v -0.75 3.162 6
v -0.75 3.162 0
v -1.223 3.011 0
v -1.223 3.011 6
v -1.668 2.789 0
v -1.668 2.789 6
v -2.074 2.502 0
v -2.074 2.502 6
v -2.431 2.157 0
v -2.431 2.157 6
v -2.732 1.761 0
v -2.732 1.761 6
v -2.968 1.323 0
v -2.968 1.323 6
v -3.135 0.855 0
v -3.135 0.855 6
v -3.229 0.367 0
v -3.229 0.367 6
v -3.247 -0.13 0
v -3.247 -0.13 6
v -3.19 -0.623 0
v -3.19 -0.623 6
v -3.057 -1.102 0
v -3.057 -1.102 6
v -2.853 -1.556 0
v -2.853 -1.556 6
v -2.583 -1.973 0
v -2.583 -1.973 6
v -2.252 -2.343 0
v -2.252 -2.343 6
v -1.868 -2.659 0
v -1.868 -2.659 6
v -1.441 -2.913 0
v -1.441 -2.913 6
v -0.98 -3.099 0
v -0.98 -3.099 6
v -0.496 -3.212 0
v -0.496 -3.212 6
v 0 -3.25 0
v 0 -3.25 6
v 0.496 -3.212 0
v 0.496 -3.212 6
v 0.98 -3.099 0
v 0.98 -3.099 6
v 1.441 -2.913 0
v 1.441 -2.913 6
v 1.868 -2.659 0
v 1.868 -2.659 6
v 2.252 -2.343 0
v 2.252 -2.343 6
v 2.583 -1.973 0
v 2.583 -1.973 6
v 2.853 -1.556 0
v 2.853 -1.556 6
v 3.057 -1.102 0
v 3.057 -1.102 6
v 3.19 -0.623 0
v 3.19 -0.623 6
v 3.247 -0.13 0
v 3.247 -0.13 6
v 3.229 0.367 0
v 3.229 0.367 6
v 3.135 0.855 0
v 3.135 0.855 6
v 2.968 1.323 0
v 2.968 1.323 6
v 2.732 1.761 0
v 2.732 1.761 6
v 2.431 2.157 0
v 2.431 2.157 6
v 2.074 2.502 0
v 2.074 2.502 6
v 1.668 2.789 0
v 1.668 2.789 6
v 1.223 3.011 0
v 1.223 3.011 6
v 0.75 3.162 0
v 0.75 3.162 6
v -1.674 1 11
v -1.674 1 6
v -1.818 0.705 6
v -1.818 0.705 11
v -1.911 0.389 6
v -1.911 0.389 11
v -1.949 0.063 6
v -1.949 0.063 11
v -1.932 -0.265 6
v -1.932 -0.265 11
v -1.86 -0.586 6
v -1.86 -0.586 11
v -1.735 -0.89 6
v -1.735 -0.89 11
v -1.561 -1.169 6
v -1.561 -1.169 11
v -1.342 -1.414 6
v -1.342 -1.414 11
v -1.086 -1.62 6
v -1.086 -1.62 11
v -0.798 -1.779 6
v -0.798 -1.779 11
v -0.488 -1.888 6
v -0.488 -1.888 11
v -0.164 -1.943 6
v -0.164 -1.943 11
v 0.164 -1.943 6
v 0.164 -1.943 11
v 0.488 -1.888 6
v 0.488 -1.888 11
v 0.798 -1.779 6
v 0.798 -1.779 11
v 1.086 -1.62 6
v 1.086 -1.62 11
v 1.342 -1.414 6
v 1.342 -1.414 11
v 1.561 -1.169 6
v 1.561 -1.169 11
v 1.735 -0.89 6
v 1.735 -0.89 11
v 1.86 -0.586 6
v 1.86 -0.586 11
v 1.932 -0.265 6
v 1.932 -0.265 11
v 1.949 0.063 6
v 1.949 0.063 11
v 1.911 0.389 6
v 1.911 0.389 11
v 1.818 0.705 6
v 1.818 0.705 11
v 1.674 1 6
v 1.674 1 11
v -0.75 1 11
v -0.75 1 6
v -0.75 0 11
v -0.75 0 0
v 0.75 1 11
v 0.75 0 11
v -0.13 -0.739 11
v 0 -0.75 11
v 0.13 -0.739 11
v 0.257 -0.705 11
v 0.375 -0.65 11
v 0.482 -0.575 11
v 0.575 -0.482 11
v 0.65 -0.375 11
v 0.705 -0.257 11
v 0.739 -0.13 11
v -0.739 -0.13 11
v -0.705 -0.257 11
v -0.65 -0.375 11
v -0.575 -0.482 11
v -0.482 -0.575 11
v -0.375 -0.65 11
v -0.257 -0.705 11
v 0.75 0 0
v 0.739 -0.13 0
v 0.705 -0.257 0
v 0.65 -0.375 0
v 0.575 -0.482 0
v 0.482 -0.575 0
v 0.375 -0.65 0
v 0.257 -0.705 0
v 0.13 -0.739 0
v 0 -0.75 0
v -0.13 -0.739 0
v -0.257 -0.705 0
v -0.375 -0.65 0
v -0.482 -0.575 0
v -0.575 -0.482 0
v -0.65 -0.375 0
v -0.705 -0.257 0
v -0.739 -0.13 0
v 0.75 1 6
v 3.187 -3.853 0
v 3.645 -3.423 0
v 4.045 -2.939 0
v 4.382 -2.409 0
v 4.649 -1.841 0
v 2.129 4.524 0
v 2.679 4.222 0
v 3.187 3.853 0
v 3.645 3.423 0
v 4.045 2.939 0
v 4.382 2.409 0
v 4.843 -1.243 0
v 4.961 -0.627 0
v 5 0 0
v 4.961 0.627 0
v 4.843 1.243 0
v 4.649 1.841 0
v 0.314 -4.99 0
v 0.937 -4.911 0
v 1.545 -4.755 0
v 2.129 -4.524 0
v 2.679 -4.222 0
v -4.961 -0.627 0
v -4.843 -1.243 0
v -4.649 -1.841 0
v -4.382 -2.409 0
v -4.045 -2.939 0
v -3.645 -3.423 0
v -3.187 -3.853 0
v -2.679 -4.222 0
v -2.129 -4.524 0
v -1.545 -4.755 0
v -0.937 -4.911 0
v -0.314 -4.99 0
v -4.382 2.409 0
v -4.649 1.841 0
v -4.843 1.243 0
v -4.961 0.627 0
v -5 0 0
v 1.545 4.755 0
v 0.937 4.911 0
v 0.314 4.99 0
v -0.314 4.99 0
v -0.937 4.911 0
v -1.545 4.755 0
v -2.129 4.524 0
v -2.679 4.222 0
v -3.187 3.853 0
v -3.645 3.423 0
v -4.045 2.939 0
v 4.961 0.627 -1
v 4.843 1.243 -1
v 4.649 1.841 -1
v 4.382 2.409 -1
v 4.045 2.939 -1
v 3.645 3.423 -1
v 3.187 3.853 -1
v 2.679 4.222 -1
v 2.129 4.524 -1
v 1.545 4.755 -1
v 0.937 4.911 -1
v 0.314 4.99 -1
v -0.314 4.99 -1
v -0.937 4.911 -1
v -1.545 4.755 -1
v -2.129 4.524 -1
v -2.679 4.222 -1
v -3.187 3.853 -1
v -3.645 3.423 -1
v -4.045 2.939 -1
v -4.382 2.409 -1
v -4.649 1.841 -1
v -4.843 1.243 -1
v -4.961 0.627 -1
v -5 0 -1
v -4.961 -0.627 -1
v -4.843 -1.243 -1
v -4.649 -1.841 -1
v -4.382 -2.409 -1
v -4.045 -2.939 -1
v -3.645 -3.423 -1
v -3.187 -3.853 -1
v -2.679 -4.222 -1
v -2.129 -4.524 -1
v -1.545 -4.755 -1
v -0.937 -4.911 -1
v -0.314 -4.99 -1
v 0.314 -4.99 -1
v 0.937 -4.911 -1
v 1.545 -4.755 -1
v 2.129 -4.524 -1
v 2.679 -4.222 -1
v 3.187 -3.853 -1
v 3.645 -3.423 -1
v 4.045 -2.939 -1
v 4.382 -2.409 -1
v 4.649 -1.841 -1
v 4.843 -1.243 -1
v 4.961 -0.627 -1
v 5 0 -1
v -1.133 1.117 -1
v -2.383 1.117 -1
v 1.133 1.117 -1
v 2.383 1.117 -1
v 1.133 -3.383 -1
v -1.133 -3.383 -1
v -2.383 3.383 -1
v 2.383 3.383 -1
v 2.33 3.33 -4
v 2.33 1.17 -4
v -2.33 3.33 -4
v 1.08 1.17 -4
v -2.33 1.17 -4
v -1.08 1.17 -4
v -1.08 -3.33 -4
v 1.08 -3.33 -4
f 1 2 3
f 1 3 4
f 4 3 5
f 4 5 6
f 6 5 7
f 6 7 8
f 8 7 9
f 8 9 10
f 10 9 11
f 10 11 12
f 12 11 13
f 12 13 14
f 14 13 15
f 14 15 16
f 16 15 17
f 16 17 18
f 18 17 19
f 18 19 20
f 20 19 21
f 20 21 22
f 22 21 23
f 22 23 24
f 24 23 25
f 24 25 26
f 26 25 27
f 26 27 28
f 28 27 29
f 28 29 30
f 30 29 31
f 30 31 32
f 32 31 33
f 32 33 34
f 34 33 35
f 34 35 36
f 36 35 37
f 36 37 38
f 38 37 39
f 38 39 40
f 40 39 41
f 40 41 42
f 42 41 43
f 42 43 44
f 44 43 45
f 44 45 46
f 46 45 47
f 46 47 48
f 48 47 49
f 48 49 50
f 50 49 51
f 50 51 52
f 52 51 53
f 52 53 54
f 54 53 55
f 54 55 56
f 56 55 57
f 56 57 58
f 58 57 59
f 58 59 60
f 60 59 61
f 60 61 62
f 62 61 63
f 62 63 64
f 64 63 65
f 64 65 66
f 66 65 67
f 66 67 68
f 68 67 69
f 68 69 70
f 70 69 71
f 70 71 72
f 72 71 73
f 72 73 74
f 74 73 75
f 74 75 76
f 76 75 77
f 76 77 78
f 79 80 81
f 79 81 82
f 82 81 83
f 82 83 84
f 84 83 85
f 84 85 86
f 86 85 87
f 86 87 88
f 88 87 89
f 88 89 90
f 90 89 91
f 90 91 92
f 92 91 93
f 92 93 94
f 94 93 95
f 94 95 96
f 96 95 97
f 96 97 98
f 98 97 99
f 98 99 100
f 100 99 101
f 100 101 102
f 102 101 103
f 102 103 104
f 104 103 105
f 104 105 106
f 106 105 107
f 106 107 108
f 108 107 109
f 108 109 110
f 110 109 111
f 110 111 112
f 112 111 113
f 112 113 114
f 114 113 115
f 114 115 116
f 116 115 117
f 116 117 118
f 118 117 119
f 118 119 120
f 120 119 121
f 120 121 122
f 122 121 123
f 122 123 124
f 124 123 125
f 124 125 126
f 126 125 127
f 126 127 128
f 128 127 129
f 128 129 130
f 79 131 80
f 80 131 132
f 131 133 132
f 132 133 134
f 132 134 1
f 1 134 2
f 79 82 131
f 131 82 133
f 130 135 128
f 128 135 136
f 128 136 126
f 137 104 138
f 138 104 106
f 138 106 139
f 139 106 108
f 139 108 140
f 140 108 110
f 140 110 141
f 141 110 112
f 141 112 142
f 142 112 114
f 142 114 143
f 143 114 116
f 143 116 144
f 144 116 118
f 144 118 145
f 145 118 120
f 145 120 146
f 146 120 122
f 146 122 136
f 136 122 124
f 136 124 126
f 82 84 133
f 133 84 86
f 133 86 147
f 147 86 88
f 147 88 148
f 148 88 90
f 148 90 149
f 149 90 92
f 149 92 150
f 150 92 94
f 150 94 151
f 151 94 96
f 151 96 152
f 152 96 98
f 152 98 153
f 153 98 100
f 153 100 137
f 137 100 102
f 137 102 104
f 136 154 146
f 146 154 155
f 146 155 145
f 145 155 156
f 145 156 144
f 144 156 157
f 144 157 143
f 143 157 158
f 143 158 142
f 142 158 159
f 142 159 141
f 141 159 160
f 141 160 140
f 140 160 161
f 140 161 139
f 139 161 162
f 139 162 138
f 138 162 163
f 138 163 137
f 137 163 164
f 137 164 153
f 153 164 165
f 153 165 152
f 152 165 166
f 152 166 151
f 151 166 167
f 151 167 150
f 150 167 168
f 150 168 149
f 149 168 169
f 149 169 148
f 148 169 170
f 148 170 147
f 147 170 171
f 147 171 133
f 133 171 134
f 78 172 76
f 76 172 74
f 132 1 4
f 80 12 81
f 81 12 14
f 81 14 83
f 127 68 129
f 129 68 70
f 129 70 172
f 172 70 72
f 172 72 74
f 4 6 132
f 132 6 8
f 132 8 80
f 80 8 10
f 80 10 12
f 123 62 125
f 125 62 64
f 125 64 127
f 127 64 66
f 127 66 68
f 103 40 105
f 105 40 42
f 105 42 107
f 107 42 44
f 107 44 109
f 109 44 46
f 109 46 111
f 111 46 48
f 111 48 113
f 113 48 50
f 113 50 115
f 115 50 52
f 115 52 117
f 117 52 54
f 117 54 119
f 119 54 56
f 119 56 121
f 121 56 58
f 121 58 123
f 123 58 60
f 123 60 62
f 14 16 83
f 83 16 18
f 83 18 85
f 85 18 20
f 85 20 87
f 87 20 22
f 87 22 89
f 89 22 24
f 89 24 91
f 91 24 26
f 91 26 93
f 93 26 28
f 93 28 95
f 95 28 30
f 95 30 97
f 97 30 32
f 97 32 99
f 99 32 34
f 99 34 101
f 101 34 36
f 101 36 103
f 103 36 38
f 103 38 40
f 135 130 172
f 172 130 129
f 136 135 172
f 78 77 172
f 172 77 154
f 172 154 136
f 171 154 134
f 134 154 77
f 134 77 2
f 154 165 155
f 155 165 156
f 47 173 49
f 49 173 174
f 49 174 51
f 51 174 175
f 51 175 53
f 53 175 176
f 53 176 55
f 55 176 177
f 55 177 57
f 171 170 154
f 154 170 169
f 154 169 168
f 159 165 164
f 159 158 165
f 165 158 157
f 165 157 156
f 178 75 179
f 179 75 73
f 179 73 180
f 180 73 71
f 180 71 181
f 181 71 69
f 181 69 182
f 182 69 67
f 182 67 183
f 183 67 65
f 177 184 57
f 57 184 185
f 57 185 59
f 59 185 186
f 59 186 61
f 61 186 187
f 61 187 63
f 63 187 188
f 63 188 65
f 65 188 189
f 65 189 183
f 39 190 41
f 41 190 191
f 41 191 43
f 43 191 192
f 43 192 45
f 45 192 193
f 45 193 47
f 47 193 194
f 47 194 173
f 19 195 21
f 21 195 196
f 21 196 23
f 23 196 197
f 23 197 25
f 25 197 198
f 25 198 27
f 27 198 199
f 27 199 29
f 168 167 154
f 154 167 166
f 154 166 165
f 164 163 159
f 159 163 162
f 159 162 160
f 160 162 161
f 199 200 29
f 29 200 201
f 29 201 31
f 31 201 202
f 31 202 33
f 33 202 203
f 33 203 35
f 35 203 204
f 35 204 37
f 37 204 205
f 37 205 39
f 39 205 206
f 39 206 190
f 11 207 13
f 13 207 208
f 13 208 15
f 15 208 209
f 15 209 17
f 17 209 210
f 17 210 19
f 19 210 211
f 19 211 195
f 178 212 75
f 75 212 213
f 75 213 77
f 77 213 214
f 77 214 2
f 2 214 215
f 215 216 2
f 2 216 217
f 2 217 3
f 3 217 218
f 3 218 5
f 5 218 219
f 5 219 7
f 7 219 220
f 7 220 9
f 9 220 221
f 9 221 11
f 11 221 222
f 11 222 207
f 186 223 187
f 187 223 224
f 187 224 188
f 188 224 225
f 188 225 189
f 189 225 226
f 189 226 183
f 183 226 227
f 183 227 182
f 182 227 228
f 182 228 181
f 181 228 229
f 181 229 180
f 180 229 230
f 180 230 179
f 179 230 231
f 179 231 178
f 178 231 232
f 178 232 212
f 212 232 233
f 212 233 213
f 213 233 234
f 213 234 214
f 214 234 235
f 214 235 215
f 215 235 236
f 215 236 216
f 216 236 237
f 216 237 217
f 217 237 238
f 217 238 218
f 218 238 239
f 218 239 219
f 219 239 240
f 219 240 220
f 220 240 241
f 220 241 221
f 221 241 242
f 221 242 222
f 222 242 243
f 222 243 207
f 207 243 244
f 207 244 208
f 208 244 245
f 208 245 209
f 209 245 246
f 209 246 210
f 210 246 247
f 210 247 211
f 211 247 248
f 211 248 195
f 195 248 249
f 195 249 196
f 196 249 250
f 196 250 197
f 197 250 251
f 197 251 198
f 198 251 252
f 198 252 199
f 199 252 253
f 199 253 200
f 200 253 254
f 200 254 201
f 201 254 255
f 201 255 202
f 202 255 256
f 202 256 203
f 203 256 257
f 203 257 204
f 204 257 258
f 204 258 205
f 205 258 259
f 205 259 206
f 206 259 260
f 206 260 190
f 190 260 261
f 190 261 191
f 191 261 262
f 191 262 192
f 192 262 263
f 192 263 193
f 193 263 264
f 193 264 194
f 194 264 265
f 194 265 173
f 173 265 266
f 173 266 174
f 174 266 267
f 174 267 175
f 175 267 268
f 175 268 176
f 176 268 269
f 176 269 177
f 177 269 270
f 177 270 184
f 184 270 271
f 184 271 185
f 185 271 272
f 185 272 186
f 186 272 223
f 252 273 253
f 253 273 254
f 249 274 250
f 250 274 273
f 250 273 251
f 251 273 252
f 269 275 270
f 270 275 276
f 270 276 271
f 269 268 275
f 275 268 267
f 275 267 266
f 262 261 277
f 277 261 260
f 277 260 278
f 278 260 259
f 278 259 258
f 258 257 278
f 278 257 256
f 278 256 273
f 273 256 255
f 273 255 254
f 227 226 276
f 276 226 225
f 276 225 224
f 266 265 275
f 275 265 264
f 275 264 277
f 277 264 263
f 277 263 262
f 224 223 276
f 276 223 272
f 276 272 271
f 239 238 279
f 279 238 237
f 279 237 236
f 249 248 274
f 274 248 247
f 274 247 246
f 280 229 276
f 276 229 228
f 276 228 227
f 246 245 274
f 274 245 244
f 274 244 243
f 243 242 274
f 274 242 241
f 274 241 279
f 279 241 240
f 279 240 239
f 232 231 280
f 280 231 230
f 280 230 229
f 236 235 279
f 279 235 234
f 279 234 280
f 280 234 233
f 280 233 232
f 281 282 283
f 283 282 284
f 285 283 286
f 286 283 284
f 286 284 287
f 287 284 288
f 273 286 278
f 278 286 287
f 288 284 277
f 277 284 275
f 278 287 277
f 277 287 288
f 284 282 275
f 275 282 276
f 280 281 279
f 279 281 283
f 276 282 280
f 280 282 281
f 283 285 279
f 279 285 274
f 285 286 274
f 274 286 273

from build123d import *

# Parameters (mm, degrees)
STOCK_5_GEAR_5_OUTPUT_GEAR_32TEETH_0_5M_DEPTH = 6
STOCK_5_GEAR_START                            = 6
STOCK_5_GEAR_5_OUTPUT_GEAR_32TEETH_3_DEPTH    = 5
SKETCH1_W                                     = 2.3
SKETCH1_H                                     = 6.8
BOSS_EXTRUDE1_DEPTH                           = 4
BOSS_EXTRUDE1_DRAFT                           = 1
SKETCH1_W_2                                   = 4.8
SKETCH1_H_2                                   = 2.3
BOSS_EXTRUDE1_PROFILE_2_DEPTH                 = 4
BOSS_EXTRUDE1_PROFILE_2_DRAFT                 = 1
SKETCH2_R                                     = 5
BOSS_EXTRUDE2_DEPTH                           = 1


# Read off the part's stored shape, not the designer's step: Stock-5_Gear 5__Output Gear_32Teeth_0.5Modulus-1
with BuildPart() as part:
    # Stock-5_Gear 5__Output Gear_32Teeth_ 2 → Stock-5_Gear 5__Output Gear_32Teeth_0.5Modulus-1 (new body)
    with BuildSketch(Plane.XY):
        with BuildLine():
            ThreePointArc((-0.75, 3.16227766), (0, -3.25), (0.75, 3.16227766))
            Line((0.75, 3.16227766), (0.75, 0))
            ThreePointArc((0.75, 0), (0, -0.75), (-0.75, 0))
            Line((-0.75, 0), (-0.75, 3.16227766))
        make_face()
    extrude(amount=STOCK_5_GEAR_5_OUTPUT_GEAR_32TEETH_0_5M_DEPTH)

    # Stock-5_Gear 5__Output Gear_32Teeth_ 3 o → Stock-5_Gear 5__Output Gear_32Teeth_ 3 (add)
    with BuildSketch(Plane.XY.offset(STOCK_5_GEAR_START)):
        with BuildLine():
            Line((1.674066904, 1), (0.75, 1))
            Line((0.75, 1), (0.75, 0))
            ThreePointArc((0.75, 0), (0, -0.75), (-0.75, 0))
            Line((-0.75, 0), (-0.75, 1))
            Line((-0.75, 1), (-1.674066904, 1))
            ThreePointArc((-1.674066904, 1), (0, -1.95), (1.674066904, 1))
        make_face()
    extrude(amount=STOCK_5_GEAR_5_OUTPUT_GEAR_32TEETH_3_DEPTH)


with BuildPart() as boss_extrude1_tool:
    # Sketch1 → Boss-Extrude1 (with draft: the straight prism first)
    with BuildSketch(Plane(origin=(0, 0, 0), x_dir=(-1, 0, 0), z_dir=(0, 0, -1))):
        Rectangle(SKETCH1_W, SKETCH1_H)
    extrude(amount=BOSS_EXTRUDE1_DEPTH)
    # Boss-Extrude1: the draft: its side faces are tilted about the plane it starts from
    boss_extrude1_sides = [boss_extrude1_tool.faces().sort_by_distance(p)[0] for p in [
        (0, -3.4, -2),
        (-1.15, 0, -2),
        (0, 3.4, -2),
        (1.15, 0, -2),
    ]]
    draft(boss_extrude1_sides, Plane(origin=(0, 0, 0), x_dir=(-1, 0, 0), z_dir=(0, 0, -1)), BOSS_EXTRUDE1_DRAFT)


with BuildPart() as part_1:
    add(part.part)

    # Boss-Extrude1: add boss_extrude1_tool
    add(boss_extrude1_tool.part)


with BuildPart() as boss_extrude1_profile_2_tool:
    # Sketch1 → Boss-Extrude1 profile 2 (with draft: the straight prism first)
    with BuildSketch(Plane(origin=(0, 0, 0), x_dir=(-1, 0, 0), z_dir=(0, 0, -1))):
        with Locations((0, 2.25)):
            Rectangle(SKETCH1_W_2, SKETCH1_H_2)
    extrude(amount=BOSS_EXTRUDE1_PROFILE_2_DEPTH)
    # Boss-Extrude1 profile 2: the draft: its side faces are tilted about the plane it starts from
    boss_extrude1_profile_2_sides = [boss_extrude1_profile_2_tool.faces().sort_by_distance(p)[0] for p in [
        (0, 3.4, -2),
        (2.4, 2.25, -2),
        (0, 1.1, -2),
        (-2.4, 2.25, -2),
    ]]
    draft(boss_extrude1_profile_2_sides, Plane(origin=(0, 0, 0), x_dir=(-1, 0, 0), z_dir=(0, 0, -1)), BOSS_EXTRUDE1_PROFILE_2_DRAFT)


with BuildPart() as part_2:
    add(part_1.part)

    # Boss-Extrude1 profile 2: add boss_extrude1_profile_2_tool
    add(boss_extrude1_profile_2_tool.part)

    # Sketch2 → Boss-Extrude2 (add)
    with BuildSketch(Plane(origin=(0, 0, 0), x_dir=(-1, 0, 0), z_dir=(0, 0, -1))):
        Circle(SKETCH2_R)
    extrude(amount=BOSS_EXTRUDE2_DEPTH)


solid = part_2.part
